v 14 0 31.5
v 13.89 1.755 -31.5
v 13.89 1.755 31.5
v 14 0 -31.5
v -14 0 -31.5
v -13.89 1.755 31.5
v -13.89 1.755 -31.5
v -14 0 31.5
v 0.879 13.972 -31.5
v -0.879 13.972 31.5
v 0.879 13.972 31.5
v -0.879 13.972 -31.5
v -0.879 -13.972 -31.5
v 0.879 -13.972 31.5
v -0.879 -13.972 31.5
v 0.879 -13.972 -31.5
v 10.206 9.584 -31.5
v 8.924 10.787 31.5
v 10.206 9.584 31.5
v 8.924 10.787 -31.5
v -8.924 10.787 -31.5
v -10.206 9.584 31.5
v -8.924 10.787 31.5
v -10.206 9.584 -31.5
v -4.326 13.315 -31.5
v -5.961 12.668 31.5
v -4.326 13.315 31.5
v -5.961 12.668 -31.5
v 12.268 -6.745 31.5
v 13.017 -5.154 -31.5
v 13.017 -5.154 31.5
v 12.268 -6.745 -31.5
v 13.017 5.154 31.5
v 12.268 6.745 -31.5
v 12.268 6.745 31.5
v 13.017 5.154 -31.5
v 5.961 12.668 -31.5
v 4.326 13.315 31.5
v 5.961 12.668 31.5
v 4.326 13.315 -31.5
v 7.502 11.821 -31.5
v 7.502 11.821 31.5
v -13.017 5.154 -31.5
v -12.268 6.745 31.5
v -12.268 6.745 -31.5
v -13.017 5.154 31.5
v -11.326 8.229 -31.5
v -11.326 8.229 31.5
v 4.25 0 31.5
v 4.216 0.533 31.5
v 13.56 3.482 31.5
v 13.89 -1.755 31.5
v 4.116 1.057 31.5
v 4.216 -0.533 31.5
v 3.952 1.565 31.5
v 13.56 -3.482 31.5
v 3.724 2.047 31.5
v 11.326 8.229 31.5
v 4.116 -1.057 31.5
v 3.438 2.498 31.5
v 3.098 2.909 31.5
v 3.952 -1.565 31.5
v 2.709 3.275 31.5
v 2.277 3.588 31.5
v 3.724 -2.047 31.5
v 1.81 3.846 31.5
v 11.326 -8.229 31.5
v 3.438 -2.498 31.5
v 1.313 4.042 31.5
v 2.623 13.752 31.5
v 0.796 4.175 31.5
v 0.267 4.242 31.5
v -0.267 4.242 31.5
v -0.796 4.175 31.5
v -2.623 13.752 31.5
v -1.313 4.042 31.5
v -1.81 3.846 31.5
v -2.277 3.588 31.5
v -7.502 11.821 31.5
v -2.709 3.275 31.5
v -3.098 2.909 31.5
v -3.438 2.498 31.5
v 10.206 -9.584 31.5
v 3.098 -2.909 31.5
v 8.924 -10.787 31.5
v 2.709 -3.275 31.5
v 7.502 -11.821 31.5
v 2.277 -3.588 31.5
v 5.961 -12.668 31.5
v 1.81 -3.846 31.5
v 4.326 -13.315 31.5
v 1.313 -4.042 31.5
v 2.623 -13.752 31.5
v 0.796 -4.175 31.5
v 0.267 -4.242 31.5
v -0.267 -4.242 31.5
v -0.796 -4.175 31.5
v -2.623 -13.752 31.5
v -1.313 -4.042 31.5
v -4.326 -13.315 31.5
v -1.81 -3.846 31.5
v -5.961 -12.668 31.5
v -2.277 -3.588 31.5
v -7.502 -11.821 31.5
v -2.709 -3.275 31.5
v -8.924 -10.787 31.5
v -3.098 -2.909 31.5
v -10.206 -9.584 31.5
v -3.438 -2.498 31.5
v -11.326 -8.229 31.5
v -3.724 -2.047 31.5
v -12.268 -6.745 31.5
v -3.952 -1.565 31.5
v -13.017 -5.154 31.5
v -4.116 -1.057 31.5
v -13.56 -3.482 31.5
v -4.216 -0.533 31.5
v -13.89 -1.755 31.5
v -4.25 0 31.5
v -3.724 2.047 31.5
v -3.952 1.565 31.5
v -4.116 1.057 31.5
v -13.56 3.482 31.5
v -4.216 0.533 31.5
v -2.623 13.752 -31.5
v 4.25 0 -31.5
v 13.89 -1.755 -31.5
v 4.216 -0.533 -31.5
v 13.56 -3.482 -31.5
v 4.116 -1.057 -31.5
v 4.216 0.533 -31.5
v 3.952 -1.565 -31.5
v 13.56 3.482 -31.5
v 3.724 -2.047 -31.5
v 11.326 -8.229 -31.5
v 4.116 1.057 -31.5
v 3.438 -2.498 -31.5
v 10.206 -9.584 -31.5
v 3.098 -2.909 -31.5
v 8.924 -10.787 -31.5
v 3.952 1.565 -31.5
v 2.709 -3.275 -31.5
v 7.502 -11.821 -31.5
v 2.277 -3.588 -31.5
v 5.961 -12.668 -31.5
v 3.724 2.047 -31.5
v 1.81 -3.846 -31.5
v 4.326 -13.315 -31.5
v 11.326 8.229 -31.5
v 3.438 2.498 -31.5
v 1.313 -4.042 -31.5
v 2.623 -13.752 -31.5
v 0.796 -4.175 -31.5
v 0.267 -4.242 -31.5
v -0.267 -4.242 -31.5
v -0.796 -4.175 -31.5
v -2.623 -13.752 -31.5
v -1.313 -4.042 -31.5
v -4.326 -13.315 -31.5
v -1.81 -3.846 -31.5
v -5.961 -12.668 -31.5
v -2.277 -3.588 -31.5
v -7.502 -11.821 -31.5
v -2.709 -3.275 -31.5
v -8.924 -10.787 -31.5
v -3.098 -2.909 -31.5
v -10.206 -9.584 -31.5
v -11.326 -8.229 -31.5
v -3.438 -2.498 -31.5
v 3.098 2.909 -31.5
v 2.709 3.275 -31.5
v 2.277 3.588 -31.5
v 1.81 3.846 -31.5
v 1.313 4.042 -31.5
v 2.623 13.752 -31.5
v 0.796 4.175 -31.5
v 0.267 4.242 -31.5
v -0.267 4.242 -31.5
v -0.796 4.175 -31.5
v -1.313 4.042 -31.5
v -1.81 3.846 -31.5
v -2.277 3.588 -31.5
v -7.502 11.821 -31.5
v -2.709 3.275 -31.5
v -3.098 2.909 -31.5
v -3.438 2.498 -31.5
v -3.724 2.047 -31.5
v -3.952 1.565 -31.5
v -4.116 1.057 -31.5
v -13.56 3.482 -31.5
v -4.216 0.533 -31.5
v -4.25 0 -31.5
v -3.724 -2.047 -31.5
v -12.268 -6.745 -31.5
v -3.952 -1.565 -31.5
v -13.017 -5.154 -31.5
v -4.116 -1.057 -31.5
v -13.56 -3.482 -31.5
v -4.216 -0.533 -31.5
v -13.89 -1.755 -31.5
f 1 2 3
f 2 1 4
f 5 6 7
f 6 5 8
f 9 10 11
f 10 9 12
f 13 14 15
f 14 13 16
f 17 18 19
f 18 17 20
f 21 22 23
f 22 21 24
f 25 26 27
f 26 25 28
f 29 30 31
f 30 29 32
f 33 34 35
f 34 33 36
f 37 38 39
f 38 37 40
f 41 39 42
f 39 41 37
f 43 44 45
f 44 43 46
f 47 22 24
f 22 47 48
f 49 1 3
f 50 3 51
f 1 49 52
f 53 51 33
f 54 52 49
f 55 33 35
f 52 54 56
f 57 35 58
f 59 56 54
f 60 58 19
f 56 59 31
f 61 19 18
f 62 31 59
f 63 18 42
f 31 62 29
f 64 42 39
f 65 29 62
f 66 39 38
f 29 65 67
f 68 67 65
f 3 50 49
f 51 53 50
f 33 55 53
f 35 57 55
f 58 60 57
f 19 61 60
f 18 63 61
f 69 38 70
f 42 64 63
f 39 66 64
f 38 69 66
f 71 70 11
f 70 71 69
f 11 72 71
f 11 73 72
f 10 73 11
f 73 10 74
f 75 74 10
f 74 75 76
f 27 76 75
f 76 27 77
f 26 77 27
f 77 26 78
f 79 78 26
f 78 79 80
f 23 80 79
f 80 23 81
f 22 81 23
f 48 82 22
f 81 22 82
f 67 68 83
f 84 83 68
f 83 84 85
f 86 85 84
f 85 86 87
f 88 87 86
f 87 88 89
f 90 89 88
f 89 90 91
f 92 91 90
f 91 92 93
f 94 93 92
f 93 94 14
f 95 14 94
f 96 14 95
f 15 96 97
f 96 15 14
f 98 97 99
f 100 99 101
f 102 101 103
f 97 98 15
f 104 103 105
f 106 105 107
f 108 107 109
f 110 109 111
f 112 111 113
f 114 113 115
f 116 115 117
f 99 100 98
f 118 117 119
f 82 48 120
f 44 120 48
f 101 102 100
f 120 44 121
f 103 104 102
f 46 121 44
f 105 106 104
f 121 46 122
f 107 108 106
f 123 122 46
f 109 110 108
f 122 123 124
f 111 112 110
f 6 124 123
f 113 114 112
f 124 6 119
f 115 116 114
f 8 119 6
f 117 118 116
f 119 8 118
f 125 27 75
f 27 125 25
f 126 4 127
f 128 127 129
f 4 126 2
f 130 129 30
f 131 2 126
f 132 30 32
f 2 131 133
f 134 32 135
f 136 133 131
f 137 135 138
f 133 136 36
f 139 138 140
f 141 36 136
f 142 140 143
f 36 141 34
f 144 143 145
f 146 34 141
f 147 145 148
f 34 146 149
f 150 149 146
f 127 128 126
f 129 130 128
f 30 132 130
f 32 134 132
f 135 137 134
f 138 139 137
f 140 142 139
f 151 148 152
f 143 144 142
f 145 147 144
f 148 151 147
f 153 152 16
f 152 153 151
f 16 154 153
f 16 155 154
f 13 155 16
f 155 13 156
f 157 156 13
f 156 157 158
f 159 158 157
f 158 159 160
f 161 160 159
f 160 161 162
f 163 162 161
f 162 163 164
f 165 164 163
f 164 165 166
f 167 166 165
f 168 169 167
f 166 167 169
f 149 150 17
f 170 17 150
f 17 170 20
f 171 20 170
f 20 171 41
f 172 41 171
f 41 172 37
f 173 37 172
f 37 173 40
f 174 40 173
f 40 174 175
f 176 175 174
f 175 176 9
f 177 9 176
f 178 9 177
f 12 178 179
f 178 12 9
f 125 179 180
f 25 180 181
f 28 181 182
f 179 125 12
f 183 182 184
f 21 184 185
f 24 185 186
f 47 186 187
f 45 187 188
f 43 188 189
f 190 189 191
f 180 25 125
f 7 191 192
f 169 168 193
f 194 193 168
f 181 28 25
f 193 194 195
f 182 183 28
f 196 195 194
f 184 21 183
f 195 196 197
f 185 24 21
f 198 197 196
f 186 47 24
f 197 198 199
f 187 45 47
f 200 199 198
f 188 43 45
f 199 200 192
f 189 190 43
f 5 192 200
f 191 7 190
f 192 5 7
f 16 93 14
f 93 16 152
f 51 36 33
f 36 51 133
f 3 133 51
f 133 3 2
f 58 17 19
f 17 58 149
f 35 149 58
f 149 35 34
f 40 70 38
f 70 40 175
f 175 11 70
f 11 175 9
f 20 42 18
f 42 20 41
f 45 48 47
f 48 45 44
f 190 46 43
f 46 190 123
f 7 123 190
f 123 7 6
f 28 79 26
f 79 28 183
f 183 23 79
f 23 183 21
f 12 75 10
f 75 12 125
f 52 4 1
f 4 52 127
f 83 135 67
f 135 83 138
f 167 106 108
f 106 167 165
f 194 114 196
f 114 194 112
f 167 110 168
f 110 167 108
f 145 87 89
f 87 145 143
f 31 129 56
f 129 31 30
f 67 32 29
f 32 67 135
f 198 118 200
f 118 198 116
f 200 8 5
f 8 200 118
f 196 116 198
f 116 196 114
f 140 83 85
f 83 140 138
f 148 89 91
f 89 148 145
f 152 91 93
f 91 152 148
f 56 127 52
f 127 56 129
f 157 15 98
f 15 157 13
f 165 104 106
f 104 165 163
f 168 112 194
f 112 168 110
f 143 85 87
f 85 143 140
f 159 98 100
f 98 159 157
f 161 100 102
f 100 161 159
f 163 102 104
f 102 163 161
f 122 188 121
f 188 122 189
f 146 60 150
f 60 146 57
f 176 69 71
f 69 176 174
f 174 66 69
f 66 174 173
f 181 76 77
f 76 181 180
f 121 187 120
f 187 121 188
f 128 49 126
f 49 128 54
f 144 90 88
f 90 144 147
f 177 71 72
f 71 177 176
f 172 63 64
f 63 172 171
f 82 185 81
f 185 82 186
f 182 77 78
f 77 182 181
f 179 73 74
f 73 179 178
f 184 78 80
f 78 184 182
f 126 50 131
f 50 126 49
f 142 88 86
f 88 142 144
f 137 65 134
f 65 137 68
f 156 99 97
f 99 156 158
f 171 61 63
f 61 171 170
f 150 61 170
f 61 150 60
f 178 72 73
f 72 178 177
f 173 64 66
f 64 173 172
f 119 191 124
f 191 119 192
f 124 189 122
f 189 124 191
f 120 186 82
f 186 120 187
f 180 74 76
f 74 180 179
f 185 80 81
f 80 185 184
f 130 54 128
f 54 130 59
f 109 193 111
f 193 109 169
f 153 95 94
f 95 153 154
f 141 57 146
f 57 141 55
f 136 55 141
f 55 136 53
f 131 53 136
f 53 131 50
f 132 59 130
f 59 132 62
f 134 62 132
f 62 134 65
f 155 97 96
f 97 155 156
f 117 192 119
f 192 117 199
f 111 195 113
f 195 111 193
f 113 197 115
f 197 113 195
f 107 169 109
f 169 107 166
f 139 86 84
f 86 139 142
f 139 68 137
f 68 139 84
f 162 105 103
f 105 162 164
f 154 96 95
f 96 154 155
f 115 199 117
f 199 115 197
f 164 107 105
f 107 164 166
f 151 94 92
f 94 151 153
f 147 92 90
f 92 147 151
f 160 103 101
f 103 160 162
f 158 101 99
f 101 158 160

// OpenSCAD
$fn = 50;


difference() {
	union() {
		translate(v = [0, 0, -31.5000000000]) {
			cylinder(h = 63, r = 14.0000000000);
		}
	}
	union() {
		translate(v = [0, 0, -100.0000000000]) {
			cylinder(h = 200, r = 4.2500000000);
		}
	}
}
